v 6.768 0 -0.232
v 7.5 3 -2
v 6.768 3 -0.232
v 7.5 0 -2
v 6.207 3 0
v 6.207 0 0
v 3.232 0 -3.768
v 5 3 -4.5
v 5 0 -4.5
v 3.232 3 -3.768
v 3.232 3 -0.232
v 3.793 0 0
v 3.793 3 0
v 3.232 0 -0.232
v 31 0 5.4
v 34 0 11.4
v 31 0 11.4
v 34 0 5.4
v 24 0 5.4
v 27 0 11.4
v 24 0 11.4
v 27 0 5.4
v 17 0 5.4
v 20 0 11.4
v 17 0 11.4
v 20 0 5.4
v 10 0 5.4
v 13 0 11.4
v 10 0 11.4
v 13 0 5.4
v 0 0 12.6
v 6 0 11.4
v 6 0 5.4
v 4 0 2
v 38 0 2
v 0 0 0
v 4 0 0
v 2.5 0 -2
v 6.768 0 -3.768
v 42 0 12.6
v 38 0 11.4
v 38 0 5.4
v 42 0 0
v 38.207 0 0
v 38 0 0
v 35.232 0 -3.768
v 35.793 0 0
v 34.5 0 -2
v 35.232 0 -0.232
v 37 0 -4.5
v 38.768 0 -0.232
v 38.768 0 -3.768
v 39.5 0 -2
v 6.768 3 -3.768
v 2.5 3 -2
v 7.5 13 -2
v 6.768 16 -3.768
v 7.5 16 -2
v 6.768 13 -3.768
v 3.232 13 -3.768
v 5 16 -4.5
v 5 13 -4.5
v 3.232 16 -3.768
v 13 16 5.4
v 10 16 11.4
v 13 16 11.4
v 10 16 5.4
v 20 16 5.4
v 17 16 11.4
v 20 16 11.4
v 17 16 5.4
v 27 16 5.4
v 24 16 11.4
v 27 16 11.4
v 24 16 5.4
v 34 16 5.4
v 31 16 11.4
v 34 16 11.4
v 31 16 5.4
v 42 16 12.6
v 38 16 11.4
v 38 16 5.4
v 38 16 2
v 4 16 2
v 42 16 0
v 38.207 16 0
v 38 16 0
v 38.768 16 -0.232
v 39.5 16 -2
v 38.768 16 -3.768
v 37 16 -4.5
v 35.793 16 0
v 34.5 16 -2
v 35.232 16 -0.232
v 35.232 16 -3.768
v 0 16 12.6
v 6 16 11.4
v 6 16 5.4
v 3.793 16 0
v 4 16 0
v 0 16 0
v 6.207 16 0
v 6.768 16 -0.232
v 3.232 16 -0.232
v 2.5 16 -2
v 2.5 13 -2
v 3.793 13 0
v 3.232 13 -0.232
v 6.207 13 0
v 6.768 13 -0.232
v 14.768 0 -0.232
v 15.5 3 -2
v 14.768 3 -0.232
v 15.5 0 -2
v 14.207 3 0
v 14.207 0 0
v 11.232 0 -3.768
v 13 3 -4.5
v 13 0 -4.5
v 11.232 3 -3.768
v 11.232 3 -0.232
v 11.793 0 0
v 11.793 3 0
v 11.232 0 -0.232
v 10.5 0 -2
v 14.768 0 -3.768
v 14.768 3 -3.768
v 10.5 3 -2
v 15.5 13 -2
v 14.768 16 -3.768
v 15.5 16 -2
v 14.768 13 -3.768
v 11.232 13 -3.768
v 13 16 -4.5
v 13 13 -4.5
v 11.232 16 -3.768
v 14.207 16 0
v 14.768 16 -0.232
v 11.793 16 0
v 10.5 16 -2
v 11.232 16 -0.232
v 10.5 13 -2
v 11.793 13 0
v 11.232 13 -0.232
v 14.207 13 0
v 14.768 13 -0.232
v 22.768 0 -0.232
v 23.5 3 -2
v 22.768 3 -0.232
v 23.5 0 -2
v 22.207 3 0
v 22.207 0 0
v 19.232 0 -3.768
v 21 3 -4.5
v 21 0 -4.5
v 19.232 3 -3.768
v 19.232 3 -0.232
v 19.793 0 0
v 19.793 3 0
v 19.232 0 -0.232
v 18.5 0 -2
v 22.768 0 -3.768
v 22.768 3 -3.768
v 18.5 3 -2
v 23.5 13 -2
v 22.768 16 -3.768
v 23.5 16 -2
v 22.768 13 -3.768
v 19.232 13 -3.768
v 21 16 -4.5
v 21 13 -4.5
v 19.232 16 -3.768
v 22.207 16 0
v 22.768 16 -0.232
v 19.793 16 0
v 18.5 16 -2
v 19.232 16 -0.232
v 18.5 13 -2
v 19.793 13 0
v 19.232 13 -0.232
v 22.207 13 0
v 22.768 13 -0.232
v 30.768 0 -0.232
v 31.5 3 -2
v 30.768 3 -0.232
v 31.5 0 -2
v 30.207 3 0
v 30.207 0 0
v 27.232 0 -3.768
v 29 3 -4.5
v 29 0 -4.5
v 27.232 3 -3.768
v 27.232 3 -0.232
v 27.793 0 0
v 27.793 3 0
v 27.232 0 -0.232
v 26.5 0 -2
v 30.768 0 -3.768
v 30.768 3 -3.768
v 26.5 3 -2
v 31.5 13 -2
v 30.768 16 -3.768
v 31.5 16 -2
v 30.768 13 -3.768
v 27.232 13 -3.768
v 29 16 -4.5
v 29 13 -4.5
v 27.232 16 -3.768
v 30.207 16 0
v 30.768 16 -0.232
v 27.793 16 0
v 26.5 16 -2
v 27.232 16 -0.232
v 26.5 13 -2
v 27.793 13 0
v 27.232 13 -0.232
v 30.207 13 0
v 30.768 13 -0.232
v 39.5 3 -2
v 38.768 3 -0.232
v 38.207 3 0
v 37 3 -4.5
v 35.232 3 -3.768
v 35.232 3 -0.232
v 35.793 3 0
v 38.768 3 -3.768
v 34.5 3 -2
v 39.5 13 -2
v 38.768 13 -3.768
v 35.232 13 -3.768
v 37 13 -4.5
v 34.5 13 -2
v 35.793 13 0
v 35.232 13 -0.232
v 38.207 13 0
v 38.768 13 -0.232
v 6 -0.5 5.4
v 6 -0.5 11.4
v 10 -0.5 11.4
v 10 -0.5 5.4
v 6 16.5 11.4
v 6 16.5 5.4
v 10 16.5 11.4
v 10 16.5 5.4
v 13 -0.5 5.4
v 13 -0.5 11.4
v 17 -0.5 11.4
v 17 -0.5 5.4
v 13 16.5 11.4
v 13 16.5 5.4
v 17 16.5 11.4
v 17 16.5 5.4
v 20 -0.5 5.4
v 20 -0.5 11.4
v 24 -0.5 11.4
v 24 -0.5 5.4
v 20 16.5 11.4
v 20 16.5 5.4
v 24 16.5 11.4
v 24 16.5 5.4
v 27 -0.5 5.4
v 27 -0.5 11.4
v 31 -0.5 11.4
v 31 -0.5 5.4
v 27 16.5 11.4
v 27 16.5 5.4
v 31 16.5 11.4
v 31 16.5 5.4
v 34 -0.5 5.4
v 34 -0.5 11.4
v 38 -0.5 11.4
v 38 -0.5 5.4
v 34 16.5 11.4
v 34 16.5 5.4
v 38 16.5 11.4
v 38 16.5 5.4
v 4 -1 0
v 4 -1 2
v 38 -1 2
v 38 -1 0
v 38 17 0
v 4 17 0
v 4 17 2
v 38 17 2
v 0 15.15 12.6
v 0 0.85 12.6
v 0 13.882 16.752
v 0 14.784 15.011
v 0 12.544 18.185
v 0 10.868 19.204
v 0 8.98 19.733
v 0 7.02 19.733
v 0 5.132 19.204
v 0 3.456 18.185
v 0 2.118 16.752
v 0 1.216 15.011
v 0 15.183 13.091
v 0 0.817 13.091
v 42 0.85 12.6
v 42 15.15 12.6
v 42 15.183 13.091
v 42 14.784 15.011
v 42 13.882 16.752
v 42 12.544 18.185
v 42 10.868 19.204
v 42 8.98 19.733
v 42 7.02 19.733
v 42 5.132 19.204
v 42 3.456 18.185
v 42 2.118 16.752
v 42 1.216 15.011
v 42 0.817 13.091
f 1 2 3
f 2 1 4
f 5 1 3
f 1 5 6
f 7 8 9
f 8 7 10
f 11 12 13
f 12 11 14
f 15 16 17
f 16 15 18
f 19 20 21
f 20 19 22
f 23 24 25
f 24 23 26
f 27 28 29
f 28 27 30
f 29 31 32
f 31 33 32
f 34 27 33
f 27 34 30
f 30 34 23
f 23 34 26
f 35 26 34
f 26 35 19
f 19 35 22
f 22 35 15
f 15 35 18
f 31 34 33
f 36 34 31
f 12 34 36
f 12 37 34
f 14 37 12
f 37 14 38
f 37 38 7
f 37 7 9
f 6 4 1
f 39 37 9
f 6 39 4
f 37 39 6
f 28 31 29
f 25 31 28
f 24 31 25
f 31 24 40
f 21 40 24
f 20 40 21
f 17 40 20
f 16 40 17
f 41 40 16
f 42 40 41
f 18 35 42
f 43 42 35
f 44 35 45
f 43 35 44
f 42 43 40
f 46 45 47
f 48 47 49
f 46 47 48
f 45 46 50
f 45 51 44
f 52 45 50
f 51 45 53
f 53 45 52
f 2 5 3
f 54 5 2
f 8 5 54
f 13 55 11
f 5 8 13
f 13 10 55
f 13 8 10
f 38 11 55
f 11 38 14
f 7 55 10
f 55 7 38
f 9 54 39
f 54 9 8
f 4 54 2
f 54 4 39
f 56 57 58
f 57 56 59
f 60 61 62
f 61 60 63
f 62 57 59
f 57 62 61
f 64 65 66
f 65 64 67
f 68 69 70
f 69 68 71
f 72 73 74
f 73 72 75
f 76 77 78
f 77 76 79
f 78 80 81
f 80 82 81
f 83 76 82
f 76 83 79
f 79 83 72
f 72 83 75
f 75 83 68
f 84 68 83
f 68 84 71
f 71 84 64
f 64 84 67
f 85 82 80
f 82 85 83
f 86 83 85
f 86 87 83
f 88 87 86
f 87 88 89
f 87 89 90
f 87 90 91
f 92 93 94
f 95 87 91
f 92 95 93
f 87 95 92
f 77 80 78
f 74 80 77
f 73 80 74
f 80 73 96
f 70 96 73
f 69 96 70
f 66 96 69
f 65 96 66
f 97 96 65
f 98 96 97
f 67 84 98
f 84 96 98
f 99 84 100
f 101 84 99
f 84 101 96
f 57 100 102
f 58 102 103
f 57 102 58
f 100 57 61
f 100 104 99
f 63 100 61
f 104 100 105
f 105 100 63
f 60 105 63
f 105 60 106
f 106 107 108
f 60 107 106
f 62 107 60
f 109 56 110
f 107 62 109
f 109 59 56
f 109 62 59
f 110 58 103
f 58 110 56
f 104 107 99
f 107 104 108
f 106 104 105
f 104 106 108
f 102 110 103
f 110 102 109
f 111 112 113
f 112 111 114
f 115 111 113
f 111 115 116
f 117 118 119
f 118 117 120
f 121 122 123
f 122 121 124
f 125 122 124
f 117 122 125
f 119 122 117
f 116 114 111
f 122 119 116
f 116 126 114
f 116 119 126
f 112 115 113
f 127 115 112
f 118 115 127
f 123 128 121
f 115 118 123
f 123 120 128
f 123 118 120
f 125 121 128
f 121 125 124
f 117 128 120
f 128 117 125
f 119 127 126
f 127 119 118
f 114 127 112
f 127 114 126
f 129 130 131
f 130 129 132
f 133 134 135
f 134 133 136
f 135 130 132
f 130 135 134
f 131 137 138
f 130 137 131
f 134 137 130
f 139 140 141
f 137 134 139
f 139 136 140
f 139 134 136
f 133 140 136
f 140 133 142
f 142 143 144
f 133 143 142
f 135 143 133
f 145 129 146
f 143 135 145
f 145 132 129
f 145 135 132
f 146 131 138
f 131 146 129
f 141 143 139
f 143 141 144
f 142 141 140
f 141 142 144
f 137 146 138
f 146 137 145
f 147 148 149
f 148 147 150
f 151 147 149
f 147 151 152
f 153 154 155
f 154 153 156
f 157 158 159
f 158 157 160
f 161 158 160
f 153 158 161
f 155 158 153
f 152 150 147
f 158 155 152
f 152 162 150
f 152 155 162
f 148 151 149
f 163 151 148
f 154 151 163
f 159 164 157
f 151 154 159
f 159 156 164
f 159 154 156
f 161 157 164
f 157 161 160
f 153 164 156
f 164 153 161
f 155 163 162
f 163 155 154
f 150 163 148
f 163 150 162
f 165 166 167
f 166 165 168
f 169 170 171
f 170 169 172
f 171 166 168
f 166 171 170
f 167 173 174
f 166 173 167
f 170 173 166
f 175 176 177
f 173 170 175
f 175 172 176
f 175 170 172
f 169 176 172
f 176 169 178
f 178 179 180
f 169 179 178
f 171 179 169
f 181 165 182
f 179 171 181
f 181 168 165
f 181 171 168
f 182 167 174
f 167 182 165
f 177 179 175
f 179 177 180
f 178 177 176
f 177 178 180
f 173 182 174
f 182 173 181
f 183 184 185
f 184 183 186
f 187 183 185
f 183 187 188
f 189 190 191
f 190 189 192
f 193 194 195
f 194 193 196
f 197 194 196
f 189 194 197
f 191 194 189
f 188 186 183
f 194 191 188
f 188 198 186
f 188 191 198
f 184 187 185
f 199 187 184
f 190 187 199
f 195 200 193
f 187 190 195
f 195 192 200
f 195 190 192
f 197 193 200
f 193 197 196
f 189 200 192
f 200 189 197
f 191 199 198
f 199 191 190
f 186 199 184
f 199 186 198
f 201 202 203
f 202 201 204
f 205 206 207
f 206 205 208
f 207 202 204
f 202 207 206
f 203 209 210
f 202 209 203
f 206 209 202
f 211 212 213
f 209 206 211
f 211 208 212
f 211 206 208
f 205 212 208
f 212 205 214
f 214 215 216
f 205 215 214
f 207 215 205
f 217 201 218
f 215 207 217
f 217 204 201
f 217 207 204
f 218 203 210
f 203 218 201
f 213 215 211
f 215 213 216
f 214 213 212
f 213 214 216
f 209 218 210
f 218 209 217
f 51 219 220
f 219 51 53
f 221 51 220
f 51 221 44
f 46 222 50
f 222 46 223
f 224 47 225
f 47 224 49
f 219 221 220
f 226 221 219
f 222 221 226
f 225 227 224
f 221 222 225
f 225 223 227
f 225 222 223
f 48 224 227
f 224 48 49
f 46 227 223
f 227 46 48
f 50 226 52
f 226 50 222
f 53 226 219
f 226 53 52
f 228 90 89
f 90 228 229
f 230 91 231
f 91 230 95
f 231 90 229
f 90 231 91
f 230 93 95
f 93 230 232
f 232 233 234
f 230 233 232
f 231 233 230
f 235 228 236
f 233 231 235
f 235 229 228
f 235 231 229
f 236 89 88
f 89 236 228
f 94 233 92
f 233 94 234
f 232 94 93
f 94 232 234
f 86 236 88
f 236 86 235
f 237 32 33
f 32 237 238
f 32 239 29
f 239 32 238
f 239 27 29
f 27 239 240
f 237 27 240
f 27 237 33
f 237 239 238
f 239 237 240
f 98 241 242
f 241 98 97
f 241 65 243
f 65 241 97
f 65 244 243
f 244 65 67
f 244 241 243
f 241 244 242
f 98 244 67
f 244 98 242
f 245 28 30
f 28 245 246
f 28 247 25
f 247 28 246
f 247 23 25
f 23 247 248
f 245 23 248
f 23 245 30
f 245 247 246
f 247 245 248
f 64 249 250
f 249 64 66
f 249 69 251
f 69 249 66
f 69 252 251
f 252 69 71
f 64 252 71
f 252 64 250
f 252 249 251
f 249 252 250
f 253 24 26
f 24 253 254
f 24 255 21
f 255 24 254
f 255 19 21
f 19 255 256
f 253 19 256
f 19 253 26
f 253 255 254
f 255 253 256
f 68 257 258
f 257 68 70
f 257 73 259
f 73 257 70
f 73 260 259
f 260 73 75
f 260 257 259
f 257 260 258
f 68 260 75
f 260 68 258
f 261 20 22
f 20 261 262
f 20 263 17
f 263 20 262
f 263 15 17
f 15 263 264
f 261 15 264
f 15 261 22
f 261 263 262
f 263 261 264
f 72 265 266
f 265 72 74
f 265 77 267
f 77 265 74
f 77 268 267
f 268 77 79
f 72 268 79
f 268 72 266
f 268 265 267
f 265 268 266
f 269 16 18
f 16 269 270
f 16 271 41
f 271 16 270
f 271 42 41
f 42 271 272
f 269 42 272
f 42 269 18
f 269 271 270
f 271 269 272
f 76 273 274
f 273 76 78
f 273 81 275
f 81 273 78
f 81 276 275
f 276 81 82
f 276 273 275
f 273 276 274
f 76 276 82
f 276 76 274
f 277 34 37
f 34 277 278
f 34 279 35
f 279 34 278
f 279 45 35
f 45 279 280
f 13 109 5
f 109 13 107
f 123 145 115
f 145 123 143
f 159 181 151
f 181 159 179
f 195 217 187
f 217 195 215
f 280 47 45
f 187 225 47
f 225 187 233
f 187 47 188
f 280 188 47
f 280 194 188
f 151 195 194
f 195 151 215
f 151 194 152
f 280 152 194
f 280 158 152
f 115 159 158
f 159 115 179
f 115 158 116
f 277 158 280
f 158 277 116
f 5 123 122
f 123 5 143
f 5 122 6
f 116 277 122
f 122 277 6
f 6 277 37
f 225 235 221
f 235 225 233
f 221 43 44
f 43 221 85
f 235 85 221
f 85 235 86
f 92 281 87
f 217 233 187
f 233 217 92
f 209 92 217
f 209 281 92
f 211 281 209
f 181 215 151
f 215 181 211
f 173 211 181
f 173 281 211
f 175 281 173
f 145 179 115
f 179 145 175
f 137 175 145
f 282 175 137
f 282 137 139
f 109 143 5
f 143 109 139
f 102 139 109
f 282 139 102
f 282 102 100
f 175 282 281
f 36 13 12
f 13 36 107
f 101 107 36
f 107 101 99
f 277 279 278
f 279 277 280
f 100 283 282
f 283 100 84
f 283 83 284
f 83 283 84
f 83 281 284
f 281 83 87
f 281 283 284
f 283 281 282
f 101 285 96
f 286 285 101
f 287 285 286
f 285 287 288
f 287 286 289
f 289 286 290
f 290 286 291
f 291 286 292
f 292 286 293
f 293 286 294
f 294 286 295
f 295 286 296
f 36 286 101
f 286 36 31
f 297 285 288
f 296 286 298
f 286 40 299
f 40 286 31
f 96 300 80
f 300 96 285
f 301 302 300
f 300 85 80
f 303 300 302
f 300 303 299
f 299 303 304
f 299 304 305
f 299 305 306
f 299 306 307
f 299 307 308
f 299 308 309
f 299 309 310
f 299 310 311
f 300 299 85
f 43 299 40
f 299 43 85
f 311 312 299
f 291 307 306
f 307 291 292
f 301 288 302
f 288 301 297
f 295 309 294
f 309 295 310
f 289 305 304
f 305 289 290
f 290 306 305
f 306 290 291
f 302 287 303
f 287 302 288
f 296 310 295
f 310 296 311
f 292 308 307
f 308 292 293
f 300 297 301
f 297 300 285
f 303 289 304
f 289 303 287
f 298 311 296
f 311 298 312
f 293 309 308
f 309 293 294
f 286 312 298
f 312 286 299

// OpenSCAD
L = 42; // [30:0.5:70] longueur
W = 16; // [10:0.5:30] largeur
H = 18; // [10:0.5:35] hauteur
detail = 3; // [1:Basique, 2:Fenetres, 3:Complet]

wagon(L,W,H,detail);


// wagon
module wagon(L,W,H,detail){

union(){

    // Base du train
    cube([L,W,H*0.7]);

    // Toit arrondi
    translate([0,W/2,H*0.7])
    rotate([0,90,0])
    cylinder(h=L,r=H*0.40);

    // ROues
    roues(L,W);


    // Niveau 2
    // Fenêtres

    if(detail>=2){

        for(i=[6:7:L-8]){

 
            translate([i,-0.5,H*0.30])
                cube([4,2,6]);

            translate([i,W-1.5,H*0.30])
                cube([4,2,6]);
        }
    }


    // Niveau 3
    if(detail>=3){

       
        // marchepieds
        translate([4,-1,0])
            cube([L-8,1,2]);

        translate([4,W,0])
            cube([L-8,1,2]);

    }

}
}

//Roues
module roues(L,W){

for(i=[5:8:L-5]){

    
    translate([i,3,-2])
    rotate([90,0,0])
    cylinder(h=3,r=2.5);

    
    translate([i,W-3,-2])
    rotate([-90,0,0])
    cylinder(h=3,r=2.5);

}

}
